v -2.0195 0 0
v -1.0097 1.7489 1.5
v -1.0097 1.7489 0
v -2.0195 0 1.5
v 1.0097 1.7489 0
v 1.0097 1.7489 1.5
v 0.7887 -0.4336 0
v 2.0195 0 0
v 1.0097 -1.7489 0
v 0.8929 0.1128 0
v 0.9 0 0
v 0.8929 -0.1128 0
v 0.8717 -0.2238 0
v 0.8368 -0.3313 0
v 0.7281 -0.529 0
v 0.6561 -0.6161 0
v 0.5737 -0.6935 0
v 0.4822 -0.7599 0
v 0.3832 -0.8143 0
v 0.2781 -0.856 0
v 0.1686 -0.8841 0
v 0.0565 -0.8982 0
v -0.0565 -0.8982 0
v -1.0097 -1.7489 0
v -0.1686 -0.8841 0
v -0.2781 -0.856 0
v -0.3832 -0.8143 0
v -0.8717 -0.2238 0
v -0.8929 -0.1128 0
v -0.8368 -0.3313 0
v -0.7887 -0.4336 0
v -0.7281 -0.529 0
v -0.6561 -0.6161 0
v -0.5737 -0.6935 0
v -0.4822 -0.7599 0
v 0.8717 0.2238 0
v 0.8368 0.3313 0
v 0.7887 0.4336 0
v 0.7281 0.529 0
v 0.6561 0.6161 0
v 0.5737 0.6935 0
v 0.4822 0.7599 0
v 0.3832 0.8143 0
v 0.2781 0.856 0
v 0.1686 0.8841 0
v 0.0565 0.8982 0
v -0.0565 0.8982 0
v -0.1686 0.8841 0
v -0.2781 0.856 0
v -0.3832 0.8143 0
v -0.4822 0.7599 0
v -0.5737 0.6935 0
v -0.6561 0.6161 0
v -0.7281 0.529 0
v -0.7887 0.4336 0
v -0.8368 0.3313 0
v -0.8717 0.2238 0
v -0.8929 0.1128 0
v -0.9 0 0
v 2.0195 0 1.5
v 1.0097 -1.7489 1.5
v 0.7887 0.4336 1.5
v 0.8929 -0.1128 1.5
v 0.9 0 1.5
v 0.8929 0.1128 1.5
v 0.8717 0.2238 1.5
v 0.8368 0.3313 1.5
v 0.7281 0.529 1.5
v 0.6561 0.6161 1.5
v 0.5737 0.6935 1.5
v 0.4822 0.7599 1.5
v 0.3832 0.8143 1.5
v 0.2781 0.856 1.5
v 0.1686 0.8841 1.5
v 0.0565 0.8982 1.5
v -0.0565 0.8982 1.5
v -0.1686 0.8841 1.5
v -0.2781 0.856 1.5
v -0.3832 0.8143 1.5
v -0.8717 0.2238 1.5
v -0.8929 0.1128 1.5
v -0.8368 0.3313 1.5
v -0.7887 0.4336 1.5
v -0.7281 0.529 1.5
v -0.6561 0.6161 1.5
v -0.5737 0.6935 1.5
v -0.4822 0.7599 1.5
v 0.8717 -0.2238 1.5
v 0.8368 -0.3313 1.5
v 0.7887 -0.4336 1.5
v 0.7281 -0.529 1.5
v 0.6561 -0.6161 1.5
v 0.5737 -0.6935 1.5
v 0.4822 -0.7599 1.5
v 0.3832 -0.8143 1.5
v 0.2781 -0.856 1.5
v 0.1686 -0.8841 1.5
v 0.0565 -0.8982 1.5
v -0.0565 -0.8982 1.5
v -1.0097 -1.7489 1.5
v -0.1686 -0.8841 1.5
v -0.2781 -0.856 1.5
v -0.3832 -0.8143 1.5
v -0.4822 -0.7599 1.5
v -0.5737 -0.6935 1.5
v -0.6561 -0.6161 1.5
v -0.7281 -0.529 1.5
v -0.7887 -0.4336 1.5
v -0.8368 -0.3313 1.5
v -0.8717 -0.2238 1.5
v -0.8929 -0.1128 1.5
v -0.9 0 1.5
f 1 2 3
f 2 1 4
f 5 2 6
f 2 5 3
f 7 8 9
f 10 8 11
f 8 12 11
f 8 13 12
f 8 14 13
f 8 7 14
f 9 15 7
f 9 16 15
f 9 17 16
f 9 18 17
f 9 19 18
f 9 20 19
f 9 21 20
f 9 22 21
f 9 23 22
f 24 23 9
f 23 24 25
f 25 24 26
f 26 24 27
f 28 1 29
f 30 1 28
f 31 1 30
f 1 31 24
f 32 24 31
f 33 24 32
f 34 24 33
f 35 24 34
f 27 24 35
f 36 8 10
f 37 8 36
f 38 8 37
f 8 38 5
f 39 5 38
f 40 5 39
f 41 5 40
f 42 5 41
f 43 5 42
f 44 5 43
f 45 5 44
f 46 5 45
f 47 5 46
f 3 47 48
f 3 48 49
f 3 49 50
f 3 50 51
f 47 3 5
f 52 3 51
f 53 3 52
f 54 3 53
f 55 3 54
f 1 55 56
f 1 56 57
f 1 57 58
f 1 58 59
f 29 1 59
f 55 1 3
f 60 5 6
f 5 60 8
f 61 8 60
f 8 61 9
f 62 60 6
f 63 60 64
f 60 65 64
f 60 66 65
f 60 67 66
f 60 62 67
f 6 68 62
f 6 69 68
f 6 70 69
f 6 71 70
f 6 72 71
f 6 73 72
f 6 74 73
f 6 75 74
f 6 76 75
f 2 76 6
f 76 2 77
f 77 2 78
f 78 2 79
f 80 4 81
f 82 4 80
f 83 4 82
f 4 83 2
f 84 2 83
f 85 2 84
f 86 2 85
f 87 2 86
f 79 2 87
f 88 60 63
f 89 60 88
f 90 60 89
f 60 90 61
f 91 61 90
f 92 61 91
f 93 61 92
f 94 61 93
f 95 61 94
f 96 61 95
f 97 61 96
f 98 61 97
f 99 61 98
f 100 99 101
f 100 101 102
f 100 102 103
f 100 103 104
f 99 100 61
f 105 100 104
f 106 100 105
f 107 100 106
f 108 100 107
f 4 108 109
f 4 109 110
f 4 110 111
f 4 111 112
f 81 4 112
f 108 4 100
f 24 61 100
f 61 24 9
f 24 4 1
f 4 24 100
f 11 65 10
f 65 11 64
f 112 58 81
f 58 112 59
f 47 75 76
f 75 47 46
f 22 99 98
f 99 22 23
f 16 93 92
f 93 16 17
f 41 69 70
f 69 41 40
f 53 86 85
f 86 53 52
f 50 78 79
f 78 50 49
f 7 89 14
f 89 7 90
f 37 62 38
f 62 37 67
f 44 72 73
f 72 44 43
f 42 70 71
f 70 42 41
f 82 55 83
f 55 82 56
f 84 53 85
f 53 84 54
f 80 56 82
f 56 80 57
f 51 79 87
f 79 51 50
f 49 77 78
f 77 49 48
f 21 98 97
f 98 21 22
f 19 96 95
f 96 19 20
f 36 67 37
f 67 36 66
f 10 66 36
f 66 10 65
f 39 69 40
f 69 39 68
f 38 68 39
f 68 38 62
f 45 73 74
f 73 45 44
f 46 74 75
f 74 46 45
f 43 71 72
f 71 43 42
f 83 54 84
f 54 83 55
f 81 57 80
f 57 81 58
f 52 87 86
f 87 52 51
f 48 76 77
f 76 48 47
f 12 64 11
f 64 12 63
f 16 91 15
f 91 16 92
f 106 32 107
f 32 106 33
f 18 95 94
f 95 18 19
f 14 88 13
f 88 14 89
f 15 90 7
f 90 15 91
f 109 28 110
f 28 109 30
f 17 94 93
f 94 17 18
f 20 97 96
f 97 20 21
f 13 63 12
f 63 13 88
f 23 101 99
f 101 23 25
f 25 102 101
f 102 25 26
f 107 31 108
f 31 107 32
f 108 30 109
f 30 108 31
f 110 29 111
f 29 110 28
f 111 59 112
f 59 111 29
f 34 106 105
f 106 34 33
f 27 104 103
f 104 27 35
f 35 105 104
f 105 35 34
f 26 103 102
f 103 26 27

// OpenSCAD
$fn = 50;


difference() {
	union() {
		translate(v = [0, 0, 0]) {
			rotate(a = [0, 0, 0]) {
				translate(v = [0, 0, 0]) {
					rotate(a = [0, 0, 0]) {
						linear_extrude(height = 1.5000000000) {
							polygon(points = [[2.0195000000, 0.0000000000], [1.0097500000, 1.7489383029], [-1.0097500000, 1.7489383029], [-2.0195000000, 0.0000000000], [-1.0097500000, -1.7489383029], [1.0097500000, -1.7489383029]]);
						}
					}
				}
			}
		}
	}
	union() {
		translate(v = [0, 0, -10]) {
			rotate(a = [0, 0, 0]) {
				cylinder(h = 100, r = 0.9000000000);
			}
		}
	}
}
